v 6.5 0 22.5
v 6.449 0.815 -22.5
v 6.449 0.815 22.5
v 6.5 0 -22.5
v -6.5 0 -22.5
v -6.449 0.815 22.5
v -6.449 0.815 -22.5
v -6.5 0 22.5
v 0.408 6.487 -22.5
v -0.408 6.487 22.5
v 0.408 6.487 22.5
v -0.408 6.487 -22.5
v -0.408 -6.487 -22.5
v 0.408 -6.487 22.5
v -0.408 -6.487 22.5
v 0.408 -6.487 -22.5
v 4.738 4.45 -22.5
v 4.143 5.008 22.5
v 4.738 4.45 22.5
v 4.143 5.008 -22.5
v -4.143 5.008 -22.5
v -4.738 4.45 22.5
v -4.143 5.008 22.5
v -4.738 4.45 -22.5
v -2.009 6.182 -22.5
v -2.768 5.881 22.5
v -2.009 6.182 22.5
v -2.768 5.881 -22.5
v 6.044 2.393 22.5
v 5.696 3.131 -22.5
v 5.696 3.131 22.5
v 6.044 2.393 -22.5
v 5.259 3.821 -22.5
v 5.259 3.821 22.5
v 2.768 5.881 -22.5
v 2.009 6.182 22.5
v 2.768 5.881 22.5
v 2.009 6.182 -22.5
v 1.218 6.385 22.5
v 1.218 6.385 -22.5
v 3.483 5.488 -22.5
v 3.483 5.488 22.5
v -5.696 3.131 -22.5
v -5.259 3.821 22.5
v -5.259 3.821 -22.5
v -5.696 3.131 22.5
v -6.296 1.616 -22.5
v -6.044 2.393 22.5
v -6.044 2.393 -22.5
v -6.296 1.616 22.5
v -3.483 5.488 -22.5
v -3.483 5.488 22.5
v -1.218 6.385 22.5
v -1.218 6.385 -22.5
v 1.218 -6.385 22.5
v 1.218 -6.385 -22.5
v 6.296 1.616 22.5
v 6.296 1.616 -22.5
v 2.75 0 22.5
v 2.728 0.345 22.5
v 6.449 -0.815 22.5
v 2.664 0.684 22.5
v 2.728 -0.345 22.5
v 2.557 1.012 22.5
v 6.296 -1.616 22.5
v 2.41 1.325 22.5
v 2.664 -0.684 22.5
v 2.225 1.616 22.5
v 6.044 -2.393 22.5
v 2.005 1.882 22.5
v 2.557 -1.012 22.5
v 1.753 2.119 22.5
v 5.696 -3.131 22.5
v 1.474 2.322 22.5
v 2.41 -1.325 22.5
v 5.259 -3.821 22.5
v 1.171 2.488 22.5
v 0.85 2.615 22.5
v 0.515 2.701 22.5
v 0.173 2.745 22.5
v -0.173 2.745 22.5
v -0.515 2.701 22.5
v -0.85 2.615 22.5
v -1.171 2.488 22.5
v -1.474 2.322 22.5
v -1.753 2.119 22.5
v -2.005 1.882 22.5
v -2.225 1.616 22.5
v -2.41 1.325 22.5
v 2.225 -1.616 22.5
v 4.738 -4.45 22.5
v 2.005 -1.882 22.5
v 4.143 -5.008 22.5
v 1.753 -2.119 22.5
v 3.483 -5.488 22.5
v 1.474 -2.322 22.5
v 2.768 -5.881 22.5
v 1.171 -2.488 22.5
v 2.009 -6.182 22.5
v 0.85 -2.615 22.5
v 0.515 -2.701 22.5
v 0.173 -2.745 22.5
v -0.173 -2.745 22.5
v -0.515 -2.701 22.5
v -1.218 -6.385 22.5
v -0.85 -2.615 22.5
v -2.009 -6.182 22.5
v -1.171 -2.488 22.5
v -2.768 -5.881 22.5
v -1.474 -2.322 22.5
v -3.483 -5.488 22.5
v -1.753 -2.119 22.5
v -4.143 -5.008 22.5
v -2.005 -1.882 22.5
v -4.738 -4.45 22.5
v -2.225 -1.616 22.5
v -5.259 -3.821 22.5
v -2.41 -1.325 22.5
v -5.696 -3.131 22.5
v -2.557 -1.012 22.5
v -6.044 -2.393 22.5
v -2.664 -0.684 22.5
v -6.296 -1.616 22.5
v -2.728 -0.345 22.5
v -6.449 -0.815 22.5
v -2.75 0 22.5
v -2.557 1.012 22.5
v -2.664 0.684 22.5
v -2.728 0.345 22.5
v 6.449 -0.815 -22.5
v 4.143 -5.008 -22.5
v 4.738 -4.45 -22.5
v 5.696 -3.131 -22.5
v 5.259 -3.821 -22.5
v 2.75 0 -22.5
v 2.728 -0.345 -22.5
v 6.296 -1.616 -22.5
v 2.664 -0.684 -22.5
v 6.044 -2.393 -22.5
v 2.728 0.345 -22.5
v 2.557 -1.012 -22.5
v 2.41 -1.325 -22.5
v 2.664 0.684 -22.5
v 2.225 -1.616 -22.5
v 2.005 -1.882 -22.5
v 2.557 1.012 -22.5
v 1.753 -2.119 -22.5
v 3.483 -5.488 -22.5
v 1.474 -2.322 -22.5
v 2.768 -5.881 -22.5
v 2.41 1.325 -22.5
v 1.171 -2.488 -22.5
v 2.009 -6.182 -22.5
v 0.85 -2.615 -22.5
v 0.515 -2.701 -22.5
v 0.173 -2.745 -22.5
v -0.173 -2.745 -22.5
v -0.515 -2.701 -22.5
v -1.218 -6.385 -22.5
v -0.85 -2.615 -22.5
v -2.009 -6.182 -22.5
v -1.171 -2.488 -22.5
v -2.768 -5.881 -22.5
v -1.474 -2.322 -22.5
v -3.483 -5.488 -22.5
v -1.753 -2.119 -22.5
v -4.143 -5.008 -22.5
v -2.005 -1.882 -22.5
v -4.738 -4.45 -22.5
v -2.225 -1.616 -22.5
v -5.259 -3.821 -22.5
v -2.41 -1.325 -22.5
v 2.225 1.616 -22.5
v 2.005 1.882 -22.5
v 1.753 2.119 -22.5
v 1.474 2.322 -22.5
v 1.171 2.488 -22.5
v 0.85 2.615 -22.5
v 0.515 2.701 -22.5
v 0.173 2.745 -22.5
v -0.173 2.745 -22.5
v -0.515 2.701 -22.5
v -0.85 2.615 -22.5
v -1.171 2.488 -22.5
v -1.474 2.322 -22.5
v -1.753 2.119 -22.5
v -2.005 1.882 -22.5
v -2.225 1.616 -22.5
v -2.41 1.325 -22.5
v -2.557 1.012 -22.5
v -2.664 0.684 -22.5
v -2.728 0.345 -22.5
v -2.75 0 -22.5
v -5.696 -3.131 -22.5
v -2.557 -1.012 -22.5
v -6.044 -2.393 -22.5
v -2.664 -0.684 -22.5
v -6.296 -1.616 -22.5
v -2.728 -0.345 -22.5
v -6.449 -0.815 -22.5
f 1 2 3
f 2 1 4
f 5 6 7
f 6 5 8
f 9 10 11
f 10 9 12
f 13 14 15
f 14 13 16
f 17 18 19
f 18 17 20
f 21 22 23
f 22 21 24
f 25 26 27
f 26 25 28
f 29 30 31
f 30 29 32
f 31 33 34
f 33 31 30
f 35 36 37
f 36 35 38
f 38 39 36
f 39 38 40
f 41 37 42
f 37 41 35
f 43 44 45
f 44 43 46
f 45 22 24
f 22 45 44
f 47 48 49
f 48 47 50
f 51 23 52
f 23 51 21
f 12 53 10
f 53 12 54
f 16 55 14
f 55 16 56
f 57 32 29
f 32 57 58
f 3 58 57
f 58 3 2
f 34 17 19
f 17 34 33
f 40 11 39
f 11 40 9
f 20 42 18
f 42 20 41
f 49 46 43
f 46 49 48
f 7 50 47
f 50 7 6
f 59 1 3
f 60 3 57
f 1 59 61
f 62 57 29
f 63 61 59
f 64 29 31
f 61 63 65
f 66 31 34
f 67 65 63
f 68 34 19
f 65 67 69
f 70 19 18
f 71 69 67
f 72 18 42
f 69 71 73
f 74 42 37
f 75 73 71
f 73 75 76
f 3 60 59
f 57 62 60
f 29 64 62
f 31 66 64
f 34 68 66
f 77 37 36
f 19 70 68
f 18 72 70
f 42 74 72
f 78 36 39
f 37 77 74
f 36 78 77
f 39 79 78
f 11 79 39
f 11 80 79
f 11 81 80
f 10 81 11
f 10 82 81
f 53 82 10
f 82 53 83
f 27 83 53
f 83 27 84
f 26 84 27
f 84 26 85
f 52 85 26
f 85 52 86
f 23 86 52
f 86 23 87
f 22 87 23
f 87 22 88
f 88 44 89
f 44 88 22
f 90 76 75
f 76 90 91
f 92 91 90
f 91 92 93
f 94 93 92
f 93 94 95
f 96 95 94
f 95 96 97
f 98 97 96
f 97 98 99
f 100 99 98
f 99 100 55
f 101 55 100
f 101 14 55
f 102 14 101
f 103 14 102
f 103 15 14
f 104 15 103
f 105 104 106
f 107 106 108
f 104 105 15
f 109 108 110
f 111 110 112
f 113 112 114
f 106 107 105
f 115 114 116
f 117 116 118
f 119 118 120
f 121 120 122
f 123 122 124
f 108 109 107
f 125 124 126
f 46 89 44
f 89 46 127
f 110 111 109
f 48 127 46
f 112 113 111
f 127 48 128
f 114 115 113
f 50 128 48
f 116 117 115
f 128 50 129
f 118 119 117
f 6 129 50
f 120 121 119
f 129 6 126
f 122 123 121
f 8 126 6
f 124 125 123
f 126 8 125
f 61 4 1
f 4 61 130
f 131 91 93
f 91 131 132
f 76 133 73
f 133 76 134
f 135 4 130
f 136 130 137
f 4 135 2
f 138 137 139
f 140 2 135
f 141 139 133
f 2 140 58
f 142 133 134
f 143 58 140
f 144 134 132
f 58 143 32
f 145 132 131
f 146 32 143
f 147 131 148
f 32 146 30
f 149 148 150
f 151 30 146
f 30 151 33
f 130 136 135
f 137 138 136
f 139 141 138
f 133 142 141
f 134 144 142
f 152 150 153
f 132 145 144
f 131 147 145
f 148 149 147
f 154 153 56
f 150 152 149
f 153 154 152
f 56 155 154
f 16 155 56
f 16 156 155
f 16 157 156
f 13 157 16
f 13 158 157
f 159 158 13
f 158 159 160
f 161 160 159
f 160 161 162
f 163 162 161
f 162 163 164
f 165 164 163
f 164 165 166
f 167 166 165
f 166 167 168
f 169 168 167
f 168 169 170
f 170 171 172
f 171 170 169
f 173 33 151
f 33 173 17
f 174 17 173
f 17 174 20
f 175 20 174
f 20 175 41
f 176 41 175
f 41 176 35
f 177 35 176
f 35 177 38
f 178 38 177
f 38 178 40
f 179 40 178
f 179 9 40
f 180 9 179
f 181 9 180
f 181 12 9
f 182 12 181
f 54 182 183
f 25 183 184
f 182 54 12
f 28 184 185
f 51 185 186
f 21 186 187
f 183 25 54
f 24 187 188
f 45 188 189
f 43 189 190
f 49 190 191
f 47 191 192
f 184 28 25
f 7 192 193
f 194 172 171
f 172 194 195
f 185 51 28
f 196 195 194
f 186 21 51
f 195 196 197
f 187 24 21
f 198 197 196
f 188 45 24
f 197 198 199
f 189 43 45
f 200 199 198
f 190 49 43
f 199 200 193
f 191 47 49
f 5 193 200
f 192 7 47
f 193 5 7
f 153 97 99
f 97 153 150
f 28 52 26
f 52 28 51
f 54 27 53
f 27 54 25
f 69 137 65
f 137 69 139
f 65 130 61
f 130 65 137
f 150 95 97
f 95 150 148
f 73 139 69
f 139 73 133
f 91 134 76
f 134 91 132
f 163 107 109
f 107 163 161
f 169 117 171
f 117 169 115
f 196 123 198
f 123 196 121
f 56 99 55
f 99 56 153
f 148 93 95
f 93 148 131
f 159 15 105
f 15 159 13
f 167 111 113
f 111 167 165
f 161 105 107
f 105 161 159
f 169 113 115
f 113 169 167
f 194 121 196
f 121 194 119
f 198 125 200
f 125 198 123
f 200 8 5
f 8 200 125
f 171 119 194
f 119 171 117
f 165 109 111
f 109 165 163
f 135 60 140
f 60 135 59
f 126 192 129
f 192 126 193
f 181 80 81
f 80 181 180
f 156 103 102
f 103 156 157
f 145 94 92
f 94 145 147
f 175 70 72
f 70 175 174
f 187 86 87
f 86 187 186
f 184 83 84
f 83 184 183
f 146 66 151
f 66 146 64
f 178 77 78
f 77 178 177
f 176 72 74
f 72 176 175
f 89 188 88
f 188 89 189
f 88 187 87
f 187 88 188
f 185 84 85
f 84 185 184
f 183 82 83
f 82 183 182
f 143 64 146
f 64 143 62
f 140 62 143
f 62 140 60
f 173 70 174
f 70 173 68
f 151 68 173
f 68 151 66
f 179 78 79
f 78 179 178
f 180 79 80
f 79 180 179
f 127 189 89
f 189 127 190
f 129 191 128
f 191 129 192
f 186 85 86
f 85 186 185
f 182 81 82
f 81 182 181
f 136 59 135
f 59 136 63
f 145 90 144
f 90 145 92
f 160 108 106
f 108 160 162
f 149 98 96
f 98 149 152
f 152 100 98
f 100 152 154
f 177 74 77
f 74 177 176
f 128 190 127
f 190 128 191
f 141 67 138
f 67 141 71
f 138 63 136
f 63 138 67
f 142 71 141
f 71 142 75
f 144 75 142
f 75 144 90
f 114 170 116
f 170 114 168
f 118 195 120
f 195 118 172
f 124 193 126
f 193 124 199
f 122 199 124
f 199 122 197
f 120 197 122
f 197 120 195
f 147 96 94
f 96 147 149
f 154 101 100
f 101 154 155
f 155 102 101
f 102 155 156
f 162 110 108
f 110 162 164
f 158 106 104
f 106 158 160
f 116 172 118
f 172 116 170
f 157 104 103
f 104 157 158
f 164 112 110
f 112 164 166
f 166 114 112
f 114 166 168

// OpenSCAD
$fn = 50;


difference() {
	union() {
		translate(v = [0, 0, -22.5000000000]) {
			cylinder(h = 45, r = 6.5000000000);
		}
	}
	union() {
		translate(v = [0, 0, -100.0000000000]) {
			cylinder(h = 200, r = 2.7500000000);
		}
	}
}
